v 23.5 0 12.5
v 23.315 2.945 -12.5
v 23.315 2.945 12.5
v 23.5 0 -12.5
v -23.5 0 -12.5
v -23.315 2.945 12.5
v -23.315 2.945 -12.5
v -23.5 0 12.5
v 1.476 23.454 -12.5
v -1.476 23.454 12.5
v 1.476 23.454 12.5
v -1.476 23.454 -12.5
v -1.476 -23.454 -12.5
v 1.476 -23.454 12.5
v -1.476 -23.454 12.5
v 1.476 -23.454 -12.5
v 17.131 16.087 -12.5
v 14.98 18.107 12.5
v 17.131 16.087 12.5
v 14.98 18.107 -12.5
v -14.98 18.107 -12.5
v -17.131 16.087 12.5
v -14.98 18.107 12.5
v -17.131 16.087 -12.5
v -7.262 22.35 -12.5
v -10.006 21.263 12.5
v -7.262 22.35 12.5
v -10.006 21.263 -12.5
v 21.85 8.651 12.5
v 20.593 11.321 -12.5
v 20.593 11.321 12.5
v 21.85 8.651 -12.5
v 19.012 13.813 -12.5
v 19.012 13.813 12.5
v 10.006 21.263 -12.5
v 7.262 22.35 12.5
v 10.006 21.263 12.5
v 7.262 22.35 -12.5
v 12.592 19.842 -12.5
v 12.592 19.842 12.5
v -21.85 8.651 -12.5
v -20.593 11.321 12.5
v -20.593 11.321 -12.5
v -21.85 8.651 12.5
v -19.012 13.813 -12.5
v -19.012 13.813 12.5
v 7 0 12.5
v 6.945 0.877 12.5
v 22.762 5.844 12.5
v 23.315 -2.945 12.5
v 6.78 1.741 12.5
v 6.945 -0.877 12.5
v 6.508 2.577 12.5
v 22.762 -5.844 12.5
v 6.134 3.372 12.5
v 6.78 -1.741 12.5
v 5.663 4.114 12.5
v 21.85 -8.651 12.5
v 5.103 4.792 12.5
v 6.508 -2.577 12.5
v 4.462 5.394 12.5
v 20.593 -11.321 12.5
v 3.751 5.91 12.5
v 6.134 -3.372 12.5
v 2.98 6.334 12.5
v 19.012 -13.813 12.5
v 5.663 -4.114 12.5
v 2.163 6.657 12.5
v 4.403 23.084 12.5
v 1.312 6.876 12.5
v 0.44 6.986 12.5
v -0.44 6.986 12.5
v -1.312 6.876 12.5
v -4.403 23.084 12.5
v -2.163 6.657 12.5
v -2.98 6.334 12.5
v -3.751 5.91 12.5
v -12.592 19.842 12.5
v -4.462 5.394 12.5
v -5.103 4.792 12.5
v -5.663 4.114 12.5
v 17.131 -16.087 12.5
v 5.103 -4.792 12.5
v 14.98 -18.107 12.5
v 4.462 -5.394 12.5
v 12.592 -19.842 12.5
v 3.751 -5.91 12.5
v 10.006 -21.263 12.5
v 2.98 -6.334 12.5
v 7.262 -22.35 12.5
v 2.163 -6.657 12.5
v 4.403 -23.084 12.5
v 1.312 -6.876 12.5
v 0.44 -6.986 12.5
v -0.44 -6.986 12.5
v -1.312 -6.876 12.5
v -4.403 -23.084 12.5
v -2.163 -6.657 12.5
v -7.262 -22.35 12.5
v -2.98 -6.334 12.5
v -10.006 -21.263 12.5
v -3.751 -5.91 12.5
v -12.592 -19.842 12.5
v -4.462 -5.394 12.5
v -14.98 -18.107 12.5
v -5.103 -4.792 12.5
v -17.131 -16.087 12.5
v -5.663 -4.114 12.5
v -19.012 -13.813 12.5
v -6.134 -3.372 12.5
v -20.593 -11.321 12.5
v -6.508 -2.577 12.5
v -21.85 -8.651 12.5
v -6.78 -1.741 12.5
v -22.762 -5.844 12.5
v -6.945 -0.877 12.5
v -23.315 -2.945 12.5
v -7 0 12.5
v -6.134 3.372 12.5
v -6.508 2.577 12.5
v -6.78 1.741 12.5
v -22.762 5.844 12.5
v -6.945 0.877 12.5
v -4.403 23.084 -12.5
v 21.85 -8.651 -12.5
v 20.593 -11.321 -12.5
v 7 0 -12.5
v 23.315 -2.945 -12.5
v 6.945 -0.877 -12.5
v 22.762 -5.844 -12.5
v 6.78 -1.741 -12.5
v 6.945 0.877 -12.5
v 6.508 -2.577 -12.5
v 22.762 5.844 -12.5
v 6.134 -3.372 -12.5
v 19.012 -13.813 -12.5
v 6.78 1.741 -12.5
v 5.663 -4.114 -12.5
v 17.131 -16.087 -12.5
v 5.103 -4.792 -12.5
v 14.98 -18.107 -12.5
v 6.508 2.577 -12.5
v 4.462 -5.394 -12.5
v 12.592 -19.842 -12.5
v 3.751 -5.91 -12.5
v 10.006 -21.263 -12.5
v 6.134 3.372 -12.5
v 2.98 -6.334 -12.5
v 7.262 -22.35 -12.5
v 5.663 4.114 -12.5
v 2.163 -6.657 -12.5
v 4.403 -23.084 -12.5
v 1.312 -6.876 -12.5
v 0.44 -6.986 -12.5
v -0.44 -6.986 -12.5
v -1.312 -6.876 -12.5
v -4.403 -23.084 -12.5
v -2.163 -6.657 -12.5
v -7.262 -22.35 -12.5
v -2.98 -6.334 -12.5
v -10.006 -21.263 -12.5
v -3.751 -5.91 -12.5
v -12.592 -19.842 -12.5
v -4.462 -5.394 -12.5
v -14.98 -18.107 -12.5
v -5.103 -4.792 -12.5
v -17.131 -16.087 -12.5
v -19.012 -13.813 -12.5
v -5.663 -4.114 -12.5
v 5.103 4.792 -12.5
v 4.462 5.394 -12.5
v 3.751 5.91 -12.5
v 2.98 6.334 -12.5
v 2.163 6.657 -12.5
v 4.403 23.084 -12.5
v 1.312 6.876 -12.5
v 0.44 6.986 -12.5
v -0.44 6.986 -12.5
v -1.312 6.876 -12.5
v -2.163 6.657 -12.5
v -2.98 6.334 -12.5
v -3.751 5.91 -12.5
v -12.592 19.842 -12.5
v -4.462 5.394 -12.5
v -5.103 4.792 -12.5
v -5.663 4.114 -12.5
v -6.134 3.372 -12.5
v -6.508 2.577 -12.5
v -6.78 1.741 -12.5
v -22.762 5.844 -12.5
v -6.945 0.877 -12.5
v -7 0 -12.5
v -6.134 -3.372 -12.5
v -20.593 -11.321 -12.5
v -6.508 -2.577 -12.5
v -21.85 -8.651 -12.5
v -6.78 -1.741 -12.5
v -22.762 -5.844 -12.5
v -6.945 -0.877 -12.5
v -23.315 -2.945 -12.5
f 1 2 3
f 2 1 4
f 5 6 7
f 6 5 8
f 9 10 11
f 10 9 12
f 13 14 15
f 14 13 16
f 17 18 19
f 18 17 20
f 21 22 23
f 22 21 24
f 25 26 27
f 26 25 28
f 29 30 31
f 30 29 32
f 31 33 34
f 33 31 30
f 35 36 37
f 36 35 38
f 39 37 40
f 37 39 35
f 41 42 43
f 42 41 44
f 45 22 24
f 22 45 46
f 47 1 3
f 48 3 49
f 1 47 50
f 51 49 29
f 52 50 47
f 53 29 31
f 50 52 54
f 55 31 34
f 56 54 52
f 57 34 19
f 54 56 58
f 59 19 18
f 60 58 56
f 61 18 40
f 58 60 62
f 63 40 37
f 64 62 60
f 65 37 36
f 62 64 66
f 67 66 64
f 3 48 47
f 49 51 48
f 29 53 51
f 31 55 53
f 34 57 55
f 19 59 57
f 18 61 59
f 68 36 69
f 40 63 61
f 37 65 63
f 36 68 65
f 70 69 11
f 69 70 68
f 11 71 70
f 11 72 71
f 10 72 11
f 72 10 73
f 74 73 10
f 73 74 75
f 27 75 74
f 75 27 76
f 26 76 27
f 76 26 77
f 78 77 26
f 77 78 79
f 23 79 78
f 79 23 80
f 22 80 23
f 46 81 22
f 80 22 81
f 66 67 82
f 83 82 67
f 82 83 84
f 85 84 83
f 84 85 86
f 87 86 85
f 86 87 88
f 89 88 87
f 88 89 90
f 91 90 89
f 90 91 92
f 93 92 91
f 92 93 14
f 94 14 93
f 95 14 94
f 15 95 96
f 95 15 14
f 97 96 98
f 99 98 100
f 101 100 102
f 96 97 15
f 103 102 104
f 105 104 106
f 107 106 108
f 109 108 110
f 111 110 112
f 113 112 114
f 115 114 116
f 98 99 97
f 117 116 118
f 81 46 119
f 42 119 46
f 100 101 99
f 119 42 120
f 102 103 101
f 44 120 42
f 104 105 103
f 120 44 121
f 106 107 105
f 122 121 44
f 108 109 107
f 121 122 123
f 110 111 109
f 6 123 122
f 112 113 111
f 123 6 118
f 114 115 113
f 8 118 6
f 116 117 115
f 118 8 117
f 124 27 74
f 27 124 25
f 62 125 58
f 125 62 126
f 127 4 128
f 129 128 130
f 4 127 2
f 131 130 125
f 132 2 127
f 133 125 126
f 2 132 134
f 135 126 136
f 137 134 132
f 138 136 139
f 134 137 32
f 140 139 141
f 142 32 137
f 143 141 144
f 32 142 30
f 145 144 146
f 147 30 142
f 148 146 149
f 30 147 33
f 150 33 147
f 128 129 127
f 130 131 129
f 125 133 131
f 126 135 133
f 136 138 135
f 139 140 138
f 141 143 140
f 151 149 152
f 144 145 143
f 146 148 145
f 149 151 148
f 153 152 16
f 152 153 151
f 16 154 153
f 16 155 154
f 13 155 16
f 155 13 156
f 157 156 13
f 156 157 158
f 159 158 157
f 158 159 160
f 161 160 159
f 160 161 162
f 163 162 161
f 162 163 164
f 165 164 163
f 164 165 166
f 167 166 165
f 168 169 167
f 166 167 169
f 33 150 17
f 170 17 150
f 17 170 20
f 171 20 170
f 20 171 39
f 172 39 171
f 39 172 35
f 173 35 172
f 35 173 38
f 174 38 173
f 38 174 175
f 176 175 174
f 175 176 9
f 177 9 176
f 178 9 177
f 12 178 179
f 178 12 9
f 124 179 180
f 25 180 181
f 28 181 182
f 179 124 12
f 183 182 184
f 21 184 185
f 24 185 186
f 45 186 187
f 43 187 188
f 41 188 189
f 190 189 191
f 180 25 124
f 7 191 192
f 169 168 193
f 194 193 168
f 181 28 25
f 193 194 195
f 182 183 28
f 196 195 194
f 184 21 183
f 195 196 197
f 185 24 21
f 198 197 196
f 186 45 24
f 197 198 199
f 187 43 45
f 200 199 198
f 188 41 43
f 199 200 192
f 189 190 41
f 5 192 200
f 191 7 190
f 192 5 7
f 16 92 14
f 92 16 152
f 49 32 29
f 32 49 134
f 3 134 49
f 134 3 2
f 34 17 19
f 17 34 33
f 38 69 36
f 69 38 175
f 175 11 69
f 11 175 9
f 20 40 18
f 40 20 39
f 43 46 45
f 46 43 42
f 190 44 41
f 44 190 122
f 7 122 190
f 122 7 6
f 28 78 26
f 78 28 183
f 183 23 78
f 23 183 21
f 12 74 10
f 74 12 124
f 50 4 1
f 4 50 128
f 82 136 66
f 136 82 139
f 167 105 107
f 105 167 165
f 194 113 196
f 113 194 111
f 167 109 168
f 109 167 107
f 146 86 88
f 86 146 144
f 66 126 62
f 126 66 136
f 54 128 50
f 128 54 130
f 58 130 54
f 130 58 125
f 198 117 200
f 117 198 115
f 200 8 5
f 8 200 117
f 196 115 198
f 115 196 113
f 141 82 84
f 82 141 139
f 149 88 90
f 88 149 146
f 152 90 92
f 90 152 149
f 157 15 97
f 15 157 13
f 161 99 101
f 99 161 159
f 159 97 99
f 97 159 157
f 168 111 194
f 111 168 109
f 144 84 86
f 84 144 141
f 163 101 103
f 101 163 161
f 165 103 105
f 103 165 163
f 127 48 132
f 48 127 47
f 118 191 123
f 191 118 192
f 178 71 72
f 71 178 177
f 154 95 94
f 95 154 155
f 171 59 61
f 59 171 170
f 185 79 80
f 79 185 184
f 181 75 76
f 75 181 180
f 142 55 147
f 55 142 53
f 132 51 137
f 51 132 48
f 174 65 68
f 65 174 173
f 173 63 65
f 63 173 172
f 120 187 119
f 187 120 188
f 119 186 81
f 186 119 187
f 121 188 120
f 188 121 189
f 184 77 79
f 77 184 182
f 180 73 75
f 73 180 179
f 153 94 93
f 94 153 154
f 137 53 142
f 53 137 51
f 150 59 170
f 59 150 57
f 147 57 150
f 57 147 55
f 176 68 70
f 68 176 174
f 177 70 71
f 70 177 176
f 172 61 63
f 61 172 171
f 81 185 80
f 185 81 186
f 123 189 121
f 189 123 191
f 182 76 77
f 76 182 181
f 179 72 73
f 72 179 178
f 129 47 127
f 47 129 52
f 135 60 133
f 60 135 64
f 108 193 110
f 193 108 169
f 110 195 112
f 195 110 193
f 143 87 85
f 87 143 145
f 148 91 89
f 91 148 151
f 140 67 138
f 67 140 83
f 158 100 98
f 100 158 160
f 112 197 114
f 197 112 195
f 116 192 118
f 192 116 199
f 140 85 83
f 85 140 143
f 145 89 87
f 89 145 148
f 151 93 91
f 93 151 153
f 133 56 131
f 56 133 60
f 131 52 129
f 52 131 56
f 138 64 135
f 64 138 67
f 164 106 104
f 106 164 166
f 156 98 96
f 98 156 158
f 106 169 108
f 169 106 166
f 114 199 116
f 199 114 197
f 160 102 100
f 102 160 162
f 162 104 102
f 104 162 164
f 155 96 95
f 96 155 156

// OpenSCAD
$fn = 50;


difference() {
	union() {
		translate(v = [0, 0, -12.5000000000]) {
			cylinder(h = 25, r = 23.5000000000);
		}
	}
	union() {
		translate(v = [0, 0, -100.0000000000]) {
			cylinder(h = 200, r = 7);
		}
	}
}
